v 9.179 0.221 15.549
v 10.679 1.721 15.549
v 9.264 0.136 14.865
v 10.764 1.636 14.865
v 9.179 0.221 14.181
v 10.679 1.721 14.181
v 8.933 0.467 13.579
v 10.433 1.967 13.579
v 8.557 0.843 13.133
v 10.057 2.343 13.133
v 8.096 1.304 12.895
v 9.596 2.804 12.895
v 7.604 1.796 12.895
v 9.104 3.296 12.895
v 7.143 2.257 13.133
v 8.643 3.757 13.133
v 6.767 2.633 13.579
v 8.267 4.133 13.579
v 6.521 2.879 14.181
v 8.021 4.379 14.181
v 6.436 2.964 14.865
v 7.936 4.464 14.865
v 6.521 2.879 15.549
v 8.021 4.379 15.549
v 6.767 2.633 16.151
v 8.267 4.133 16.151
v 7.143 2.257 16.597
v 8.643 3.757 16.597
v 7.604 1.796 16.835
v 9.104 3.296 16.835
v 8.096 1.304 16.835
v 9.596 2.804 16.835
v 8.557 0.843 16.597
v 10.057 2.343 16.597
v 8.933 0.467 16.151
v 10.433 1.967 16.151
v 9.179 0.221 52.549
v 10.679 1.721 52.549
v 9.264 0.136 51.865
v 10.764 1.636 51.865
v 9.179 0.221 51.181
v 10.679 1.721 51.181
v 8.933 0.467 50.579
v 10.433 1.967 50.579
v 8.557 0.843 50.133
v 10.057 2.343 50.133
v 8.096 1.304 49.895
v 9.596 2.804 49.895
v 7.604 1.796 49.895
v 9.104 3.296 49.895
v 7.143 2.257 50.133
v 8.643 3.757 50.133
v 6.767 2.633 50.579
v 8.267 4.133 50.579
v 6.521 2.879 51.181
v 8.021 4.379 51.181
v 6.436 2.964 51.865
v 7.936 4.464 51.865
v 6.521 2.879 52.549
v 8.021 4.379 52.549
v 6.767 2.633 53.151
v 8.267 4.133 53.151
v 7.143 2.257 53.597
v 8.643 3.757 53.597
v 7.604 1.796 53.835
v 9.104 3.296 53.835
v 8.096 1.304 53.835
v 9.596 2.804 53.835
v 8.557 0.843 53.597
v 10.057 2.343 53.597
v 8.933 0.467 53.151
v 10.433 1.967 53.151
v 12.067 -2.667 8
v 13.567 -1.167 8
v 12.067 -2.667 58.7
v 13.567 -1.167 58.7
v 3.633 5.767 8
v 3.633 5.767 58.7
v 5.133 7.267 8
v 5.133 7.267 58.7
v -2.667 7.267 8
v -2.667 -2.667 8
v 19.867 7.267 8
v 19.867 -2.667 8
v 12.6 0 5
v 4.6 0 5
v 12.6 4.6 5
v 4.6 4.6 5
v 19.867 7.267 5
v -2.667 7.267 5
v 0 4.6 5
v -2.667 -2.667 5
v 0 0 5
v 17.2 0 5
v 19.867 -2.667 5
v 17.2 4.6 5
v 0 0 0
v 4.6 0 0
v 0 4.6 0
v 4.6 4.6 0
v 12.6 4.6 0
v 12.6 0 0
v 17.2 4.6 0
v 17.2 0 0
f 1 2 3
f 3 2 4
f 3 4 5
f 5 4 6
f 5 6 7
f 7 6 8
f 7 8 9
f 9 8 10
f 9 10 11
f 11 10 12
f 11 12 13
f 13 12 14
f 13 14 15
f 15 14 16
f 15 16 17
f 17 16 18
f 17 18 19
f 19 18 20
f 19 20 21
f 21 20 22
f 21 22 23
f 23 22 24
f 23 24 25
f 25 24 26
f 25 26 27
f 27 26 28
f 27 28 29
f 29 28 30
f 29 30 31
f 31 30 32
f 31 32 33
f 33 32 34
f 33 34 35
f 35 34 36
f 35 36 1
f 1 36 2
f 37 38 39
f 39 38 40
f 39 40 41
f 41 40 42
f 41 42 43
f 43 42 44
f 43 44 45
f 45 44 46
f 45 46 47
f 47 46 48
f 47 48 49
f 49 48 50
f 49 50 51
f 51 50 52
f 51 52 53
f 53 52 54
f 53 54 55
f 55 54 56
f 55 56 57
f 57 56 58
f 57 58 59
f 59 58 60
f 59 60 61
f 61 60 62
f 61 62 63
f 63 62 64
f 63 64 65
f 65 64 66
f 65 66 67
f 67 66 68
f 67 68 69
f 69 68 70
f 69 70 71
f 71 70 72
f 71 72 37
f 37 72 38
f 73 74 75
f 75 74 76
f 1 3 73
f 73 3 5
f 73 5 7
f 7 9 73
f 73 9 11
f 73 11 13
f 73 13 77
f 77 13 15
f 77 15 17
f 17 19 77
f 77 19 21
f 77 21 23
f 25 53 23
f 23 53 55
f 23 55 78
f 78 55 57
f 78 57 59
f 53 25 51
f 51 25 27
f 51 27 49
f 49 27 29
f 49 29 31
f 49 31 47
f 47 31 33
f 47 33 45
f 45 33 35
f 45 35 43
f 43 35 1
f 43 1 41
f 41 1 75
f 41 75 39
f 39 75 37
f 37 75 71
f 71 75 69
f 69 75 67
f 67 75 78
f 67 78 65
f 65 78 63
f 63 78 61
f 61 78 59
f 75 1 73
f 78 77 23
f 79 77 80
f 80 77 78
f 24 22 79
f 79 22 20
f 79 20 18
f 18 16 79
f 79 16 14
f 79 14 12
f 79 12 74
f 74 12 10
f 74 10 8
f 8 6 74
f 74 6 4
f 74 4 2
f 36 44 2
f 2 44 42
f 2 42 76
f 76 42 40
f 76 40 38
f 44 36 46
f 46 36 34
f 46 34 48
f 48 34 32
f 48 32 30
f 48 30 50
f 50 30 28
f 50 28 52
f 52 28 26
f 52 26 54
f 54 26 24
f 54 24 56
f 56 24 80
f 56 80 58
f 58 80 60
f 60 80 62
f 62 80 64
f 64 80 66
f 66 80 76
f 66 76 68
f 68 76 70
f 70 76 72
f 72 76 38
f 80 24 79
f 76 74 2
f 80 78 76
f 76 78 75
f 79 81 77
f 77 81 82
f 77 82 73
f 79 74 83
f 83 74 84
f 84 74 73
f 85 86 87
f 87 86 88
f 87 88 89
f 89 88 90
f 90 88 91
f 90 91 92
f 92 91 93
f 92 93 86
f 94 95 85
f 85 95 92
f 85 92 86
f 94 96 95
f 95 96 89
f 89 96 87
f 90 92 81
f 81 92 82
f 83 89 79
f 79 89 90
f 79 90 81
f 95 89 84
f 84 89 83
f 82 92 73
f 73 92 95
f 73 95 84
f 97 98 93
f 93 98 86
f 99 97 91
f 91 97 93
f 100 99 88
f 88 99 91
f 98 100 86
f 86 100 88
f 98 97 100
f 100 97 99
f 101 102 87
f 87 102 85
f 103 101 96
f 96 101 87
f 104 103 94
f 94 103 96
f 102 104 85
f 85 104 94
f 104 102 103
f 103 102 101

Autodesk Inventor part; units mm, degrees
ref_plane "YZ Plane" through (0, 0, 0) normal (1, 0, 0) x (0, 1, 0)
ref_plane "XZ Plane" through (0, 0, 0) normal (0, 1, 0) x (-1, 0, 0)
ref_plane "XY Plane" through (0, 0, 0) normal (0, 0, 1) x (1, 0, 0)
sketch "Sketch1" plane through (0, 0, 0) normal (0, 0, 1) x (1, 0, 0)
  line L0 (0, 0) -> (4.6, 0)
  line L1 (4.6, 0) -> (4.6, 4.6)
  line L2 (4.6, 4.6) -> (0, 4.6)
  line L3 (0, 4.6) -> (0, 0)
  line L4 (4.6, 4.6) -> (12.6, 4.6) construction
  line L5 (12.6, 4.6) -> (17.2, 4.6)
  line L6 (17.2, 4.6) -> (17.2, 0)
  line L7 (17.2, 0) -> (12.6, 0)
  line L8 (12.6, 0) -> (12.6, 4.6)
  dimension "d2" = 4.6
  dimension "d3" = 4.6
  dimension "d4" = 8
  dimension "d5" = 4.6
extrude "Extrusion1" add sketch "Sketch1" along normal blind 5
sketch "Sketch2" plane through (0, 0, 5) normal (0, 0, 1) x (1, 0, 0)
  line L0 (17.2, 0) -> (17.2, -2.6667) construction
  line L1 (17.2, -2.6667) -> (19.8667, -2.6667) construction
  line L2 (0, 4.6) -> (0, 7.2667) construction
  line L3 (0, 7.2667) -> (-2.6667, 7.2667) construction
  line L4 (-2.6667, 7.2667) -> (19.8667, 7.2667)
  line L5 (19.8667, 7.2667) -> (19.8667, -2.6667)
  line L6 (19.8667, -2.6667) -> (-2.6667, -2.6667)
  line L7 (-2.6667, -2.6667) -> (-2.6667, 7.2667)
  point P0 (29.8, 0)
  dimension "d18" = 2.6667
  dimension "d19" = 2.6667
  dimension "d20" = 2.6667
  dimension "d21" = 2.6667
extrude "Extrusion2" add sketch "Sketch2" along normal blind 3
sketch "Sketch3" plane through (0, 0, 8) normal (0, 0, 1) x (1, 0, 0)
  line L0 (19.8667, -2.6667) -> (19.8667, 7.2667) construction
  line L1 (19.8667, 7.2667) -> (-2.6667, 7.2667) construction
  line L2 (-2.6667, -2.6667) -> (19.8667, -2.6667) construction
  line L3 (-2.6667, 7.2667) -> (-2.6667, -2.6667) construction
  line L4 (-2.6667, 2.3) -> (19.8667, 2.3) construction
  line L5 (8.6, 7.2667) -> (8.6, -2.6667) construction
  line L6 (8.6, 2.3) -> (7.85, 3.05) construction
  line L7 (8.6, 2.3) -> (9.35, 1.55) construction
  line L8 (8.6, 2.3) -> (9.35, 3.05) construction
  line L9 (8.6, 2.3) -> (7.85, 1.55) construction
  line L10 (9.35, 3.05) -> (5.1333, 7.2667)
  line L11 (7.85, 1.55) -> (12.0667, -2.6667)
  line L12 (9.35, 3.05) -> (13.5667, -1.1667)
  line L13 (13.5667, -1.1667) -> (12.0667, -2.6667)
  line L14 (7.85, 1.55) -> (3.6333, 5.7667)
  line L15 (3.6333, 5.7667) -> (5.1333, 7.2667)
  point P0 (0, 0)
  dimension "d46" = 0.75
  dimension "d47" = 45
  dimension "d48" = 45
  dimension "d49" = 0.75
extrude "Extrusion4" add sketch "Sketch3" along normal blind 50.7
sketch "Sketch5" plane through (5.1333, 7.2667, 8) normal (0.7071, 0.7071, 0) x (-0.7071, 0.7071, 0)
  line L0 (0, 0.0299) -> (-11.9265, -0.0248) construction
  line L1 (-5.9633, 0.0025) -> (-5.9633, 50.7) construction
  line L2 (0, 50.7) -> (-10.418, 50.7) construction
  line L3 (-11.9265, 50.7547) -> (-11.9265, -0.0248) construction
  line L4 (-11.9265, 25.3649) -> (0, 25.3649) construction
  line L5 (0, 50.7) -> (0, 0.0299) construction
  line L6 (-5.9633, 25.3649) -> (-5.9633, 6.8649) construction
  line L7 (-5.9633, 25.3649) -> (-5.9633, 43.8649) construction
  circle A0 centre (-5.9633, 6.8649) radius 2
  circle A1 centre (-5.9633, 43.8649) radius 2
  line L8 (-11.9265, 0) -> (-11.9265, 50.7) projected
  line L9 (-11.9265, 50.7) -> (0, 50.7) projected
  point P0 (-1.5085, -8)
  point P1 (5.5376, 58.6752)
  dimension "d50" = 18.5
  dimension "d51" = 18.5
  dimension "d52" = 4
  dimension "d53" = 4
  dimension "d54" = 0
  dimension "d55" = 0
extrude "Extrusion6" cut sketch "Sketch5" against normal blind 50.7
equation "\"d2\" = box"
equation "\"d3\" = box"
equation "\"d4\" = gap"
equation "\"d5\" = box"
equation "\"d18\" = 0.333333 * gap"
equation "\"d19\" = 0.333333 * gap"
equation "\"d20\" = 0.333333 * gap"
equation "\"d21\" = 0.333333 * gap"
equation "\"box\" = 4.6"
equation "\"gap\" = 8"
properties part number "IR45"
